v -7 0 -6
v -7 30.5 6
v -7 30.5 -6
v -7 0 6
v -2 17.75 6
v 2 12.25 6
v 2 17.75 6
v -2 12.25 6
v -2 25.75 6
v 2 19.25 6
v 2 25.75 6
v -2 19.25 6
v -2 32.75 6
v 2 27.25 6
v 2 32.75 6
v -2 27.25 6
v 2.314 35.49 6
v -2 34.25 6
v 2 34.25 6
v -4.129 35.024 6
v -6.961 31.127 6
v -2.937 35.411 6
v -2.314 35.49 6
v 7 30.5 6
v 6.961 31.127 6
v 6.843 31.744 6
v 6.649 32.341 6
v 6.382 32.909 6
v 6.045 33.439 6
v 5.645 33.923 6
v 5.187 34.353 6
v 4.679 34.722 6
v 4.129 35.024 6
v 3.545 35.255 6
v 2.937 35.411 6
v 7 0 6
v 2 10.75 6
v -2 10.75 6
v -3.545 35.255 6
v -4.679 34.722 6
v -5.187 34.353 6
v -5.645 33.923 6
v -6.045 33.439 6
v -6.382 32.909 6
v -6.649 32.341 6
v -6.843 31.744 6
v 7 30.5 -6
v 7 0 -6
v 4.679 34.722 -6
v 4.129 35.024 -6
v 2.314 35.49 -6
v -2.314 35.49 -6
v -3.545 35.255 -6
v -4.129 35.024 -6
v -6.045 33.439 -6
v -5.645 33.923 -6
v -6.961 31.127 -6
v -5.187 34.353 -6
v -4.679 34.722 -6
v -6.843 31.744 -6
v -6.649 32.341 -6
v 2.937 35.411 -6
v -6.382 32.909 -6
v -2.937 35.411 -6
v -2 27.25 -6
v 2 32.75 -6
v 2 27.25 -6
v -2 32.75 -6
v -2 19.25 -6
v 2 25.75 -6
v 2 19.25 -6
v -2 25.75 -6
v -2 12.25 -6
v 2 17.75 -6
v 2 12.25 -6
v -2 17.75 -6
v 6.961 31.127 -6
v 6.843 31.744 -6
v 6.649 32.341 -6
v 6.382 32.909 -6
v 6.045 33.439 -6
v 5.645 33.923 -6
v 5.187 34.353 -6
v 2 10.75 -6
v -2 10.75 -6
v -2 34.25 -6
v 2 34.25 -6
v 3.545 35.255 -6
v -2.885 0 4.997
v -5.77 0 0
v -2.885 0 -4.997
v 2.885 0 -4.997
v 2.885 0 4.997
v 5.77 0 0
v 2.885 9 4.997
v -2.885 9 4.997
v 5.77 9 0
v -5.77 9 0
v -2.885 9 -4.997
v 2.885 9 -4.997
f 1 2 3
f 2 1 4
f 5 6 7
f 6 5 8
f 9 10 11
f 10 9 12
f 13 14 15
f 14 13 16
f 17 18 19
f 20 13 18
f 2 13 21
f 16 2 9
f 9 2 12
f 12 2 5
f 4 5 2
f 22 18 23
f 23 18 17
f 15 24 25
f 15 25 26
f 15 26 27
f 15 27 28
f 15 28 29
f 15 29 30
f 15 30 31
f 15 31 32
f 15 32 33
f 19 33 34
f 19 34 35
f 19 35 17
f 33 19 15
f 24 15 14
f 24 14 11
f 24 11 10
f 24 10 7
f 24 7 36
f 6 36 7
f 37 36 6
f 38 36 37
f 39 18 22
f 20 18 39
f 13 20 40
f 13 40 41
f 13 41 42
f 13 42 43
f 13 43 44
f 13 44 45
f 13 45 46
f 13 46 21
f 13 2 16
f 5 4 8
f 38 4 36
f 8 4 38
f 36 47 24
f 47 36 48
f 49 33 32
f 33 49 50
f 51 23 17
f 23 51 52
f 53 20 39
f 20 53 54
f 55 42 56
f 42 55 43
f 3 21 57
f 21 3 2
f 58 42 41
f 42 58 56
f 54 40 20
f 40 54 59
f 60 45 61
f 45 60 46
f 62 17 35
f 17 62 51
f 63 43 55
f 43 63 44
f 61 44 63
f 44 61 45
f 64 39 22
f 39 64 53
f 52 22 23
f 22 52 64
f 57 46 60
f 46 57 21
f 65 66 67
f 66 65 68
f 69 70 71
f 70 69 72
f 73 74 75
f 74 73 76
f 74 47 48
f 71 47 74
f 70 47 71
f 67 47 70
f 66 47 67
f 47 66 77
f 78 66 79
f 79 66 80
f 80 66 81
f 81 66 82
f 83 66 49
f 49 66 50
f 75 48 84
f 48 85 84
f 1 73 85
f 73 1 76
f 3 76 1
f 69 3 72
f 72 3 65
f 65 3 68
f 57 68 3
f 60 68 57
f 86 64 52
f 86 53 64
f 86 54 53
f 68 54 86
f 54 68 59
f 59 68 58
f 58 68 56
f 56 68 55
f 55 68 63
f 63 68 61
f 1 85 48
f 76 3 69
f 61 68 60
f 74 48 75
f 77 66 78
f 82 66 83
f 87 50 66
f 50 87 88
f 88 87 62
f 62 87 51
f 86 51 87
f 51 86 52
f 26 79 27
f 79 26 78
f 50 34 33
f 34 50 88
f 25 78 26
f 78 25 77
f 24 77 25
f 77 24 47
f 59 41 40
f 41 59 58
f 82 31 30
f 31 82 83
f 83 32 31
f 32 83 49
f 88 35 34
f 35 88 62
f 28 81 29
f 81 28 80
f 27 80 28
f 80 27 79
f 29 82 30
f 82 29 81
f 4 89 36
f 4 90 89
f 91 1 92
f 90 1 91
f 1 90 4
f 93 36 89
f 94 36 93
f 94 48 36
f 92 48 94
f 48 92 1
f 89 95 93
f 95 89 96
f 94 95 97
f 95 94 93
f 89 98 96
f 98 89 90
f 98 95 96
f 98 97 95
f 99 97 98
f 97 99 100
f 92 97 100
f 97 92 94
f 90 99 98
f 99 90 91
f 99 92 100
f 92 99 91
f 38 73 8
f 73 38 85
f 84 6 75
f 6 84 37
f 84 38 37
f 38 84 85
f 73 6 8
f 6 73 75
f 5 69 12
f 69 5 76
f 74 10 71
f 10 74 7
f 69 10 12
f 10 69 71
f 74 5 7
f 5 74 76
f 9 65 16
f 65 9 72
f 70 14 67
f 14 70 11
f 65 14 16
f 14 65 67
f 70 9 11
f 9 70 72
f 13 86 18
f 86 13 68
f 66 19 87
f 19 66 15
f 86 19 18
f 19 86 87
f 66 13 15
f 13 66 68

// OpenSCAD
$fn = 50;


difference() {
	union() {
		translate(v = [0, 21.0000000000, -6.0000000000]) {
			hull() {
				translate(v = [-2.0000000000, 9.5000000000, 0]) {
					cylinder(h = 12, r = 5);
				}
				translate(v = [2.0000000000, 9.5000000000, 0]) {
					cylinder(h = 12, r = 5);
				}
				translate(v = [-2.0000000000, -9.5000000000, 0]) {
					cylinder(h = 12, r = 5);
				}
				translate(v = [2.0000000000, -9.5000000000, 0]) {
					cylinder(h = 12, r = 5);
				}
			}
		}
		translate(v = [0, 21.0000000000, -6.0000000000]) {
			hull() {
				translate(v = [-2.0000000000, 9.5000000000, 0]) {
					cylinder(h = 12, r = 5);
				}
				translate(v = [2.0000000000, 9.5000000000, 0]) {
					cylinder(h = 12, r = 5);
				}
				translate(v = [-2.0000000000, -9.5000000000, 0]) {
					cylinder(h = 12, r = 5);
				}
				translate(v = [2.0000000000, -9.5000000000, 0]) {
					cylinder(h = 12, r = 5);
				}
			}
		}
		translate(v = [-7.0000000000, 0, -6.0000000000]) {
			cube(size = [14, 13.5000000000, 12]);
		}
	}
	union() {
		translate(v = [0.0000000000, 9, 0]) {
			rotate(a = [0, 0, 0]) {
				difference() {
					union() {
						rotate(a = [90, 0, 0]) {
							linear_extrude(height = 13.5000000000) {
								polygon(points = [[5.7700000000, 0.0000000000], [2.8850000000, 4.9969665798], [-2.8850000000, 4.9969665798], [-5.7700000000, 0.0000000000], [-2.8850000000, -4.9969665798], [2.8850000000, -4.9969665798]]);
							}
						}
					}
					union();
				}
			}
		}
		translate(v = [-2.0000000000, 10.7500000000, -50]) {
			cube(size = [4, 1.5000000000, 100]);
		}
		translate(v = [-2.0000000000, 17.7500000000, -50]) {
			cube(size = [4, 1.5000000000, 100]);
		}
		translate(v = [-2.0000000000, 25.7500000000, -50]) {
			cube(size = [4, 1.5000000000, 100]);
		}
		translate(v = [-2.0000000000, 32.7500000000, -50]) {
			cube(size = [4, 1.5000000000, 100]);
		}
		translate(v = [0.0000000000, 8, 0]) {
			rotate(a = [90, 0, 0]) {
				cylinder(h = 8, r = 3.0000000000);
			}
		}
	}
}
